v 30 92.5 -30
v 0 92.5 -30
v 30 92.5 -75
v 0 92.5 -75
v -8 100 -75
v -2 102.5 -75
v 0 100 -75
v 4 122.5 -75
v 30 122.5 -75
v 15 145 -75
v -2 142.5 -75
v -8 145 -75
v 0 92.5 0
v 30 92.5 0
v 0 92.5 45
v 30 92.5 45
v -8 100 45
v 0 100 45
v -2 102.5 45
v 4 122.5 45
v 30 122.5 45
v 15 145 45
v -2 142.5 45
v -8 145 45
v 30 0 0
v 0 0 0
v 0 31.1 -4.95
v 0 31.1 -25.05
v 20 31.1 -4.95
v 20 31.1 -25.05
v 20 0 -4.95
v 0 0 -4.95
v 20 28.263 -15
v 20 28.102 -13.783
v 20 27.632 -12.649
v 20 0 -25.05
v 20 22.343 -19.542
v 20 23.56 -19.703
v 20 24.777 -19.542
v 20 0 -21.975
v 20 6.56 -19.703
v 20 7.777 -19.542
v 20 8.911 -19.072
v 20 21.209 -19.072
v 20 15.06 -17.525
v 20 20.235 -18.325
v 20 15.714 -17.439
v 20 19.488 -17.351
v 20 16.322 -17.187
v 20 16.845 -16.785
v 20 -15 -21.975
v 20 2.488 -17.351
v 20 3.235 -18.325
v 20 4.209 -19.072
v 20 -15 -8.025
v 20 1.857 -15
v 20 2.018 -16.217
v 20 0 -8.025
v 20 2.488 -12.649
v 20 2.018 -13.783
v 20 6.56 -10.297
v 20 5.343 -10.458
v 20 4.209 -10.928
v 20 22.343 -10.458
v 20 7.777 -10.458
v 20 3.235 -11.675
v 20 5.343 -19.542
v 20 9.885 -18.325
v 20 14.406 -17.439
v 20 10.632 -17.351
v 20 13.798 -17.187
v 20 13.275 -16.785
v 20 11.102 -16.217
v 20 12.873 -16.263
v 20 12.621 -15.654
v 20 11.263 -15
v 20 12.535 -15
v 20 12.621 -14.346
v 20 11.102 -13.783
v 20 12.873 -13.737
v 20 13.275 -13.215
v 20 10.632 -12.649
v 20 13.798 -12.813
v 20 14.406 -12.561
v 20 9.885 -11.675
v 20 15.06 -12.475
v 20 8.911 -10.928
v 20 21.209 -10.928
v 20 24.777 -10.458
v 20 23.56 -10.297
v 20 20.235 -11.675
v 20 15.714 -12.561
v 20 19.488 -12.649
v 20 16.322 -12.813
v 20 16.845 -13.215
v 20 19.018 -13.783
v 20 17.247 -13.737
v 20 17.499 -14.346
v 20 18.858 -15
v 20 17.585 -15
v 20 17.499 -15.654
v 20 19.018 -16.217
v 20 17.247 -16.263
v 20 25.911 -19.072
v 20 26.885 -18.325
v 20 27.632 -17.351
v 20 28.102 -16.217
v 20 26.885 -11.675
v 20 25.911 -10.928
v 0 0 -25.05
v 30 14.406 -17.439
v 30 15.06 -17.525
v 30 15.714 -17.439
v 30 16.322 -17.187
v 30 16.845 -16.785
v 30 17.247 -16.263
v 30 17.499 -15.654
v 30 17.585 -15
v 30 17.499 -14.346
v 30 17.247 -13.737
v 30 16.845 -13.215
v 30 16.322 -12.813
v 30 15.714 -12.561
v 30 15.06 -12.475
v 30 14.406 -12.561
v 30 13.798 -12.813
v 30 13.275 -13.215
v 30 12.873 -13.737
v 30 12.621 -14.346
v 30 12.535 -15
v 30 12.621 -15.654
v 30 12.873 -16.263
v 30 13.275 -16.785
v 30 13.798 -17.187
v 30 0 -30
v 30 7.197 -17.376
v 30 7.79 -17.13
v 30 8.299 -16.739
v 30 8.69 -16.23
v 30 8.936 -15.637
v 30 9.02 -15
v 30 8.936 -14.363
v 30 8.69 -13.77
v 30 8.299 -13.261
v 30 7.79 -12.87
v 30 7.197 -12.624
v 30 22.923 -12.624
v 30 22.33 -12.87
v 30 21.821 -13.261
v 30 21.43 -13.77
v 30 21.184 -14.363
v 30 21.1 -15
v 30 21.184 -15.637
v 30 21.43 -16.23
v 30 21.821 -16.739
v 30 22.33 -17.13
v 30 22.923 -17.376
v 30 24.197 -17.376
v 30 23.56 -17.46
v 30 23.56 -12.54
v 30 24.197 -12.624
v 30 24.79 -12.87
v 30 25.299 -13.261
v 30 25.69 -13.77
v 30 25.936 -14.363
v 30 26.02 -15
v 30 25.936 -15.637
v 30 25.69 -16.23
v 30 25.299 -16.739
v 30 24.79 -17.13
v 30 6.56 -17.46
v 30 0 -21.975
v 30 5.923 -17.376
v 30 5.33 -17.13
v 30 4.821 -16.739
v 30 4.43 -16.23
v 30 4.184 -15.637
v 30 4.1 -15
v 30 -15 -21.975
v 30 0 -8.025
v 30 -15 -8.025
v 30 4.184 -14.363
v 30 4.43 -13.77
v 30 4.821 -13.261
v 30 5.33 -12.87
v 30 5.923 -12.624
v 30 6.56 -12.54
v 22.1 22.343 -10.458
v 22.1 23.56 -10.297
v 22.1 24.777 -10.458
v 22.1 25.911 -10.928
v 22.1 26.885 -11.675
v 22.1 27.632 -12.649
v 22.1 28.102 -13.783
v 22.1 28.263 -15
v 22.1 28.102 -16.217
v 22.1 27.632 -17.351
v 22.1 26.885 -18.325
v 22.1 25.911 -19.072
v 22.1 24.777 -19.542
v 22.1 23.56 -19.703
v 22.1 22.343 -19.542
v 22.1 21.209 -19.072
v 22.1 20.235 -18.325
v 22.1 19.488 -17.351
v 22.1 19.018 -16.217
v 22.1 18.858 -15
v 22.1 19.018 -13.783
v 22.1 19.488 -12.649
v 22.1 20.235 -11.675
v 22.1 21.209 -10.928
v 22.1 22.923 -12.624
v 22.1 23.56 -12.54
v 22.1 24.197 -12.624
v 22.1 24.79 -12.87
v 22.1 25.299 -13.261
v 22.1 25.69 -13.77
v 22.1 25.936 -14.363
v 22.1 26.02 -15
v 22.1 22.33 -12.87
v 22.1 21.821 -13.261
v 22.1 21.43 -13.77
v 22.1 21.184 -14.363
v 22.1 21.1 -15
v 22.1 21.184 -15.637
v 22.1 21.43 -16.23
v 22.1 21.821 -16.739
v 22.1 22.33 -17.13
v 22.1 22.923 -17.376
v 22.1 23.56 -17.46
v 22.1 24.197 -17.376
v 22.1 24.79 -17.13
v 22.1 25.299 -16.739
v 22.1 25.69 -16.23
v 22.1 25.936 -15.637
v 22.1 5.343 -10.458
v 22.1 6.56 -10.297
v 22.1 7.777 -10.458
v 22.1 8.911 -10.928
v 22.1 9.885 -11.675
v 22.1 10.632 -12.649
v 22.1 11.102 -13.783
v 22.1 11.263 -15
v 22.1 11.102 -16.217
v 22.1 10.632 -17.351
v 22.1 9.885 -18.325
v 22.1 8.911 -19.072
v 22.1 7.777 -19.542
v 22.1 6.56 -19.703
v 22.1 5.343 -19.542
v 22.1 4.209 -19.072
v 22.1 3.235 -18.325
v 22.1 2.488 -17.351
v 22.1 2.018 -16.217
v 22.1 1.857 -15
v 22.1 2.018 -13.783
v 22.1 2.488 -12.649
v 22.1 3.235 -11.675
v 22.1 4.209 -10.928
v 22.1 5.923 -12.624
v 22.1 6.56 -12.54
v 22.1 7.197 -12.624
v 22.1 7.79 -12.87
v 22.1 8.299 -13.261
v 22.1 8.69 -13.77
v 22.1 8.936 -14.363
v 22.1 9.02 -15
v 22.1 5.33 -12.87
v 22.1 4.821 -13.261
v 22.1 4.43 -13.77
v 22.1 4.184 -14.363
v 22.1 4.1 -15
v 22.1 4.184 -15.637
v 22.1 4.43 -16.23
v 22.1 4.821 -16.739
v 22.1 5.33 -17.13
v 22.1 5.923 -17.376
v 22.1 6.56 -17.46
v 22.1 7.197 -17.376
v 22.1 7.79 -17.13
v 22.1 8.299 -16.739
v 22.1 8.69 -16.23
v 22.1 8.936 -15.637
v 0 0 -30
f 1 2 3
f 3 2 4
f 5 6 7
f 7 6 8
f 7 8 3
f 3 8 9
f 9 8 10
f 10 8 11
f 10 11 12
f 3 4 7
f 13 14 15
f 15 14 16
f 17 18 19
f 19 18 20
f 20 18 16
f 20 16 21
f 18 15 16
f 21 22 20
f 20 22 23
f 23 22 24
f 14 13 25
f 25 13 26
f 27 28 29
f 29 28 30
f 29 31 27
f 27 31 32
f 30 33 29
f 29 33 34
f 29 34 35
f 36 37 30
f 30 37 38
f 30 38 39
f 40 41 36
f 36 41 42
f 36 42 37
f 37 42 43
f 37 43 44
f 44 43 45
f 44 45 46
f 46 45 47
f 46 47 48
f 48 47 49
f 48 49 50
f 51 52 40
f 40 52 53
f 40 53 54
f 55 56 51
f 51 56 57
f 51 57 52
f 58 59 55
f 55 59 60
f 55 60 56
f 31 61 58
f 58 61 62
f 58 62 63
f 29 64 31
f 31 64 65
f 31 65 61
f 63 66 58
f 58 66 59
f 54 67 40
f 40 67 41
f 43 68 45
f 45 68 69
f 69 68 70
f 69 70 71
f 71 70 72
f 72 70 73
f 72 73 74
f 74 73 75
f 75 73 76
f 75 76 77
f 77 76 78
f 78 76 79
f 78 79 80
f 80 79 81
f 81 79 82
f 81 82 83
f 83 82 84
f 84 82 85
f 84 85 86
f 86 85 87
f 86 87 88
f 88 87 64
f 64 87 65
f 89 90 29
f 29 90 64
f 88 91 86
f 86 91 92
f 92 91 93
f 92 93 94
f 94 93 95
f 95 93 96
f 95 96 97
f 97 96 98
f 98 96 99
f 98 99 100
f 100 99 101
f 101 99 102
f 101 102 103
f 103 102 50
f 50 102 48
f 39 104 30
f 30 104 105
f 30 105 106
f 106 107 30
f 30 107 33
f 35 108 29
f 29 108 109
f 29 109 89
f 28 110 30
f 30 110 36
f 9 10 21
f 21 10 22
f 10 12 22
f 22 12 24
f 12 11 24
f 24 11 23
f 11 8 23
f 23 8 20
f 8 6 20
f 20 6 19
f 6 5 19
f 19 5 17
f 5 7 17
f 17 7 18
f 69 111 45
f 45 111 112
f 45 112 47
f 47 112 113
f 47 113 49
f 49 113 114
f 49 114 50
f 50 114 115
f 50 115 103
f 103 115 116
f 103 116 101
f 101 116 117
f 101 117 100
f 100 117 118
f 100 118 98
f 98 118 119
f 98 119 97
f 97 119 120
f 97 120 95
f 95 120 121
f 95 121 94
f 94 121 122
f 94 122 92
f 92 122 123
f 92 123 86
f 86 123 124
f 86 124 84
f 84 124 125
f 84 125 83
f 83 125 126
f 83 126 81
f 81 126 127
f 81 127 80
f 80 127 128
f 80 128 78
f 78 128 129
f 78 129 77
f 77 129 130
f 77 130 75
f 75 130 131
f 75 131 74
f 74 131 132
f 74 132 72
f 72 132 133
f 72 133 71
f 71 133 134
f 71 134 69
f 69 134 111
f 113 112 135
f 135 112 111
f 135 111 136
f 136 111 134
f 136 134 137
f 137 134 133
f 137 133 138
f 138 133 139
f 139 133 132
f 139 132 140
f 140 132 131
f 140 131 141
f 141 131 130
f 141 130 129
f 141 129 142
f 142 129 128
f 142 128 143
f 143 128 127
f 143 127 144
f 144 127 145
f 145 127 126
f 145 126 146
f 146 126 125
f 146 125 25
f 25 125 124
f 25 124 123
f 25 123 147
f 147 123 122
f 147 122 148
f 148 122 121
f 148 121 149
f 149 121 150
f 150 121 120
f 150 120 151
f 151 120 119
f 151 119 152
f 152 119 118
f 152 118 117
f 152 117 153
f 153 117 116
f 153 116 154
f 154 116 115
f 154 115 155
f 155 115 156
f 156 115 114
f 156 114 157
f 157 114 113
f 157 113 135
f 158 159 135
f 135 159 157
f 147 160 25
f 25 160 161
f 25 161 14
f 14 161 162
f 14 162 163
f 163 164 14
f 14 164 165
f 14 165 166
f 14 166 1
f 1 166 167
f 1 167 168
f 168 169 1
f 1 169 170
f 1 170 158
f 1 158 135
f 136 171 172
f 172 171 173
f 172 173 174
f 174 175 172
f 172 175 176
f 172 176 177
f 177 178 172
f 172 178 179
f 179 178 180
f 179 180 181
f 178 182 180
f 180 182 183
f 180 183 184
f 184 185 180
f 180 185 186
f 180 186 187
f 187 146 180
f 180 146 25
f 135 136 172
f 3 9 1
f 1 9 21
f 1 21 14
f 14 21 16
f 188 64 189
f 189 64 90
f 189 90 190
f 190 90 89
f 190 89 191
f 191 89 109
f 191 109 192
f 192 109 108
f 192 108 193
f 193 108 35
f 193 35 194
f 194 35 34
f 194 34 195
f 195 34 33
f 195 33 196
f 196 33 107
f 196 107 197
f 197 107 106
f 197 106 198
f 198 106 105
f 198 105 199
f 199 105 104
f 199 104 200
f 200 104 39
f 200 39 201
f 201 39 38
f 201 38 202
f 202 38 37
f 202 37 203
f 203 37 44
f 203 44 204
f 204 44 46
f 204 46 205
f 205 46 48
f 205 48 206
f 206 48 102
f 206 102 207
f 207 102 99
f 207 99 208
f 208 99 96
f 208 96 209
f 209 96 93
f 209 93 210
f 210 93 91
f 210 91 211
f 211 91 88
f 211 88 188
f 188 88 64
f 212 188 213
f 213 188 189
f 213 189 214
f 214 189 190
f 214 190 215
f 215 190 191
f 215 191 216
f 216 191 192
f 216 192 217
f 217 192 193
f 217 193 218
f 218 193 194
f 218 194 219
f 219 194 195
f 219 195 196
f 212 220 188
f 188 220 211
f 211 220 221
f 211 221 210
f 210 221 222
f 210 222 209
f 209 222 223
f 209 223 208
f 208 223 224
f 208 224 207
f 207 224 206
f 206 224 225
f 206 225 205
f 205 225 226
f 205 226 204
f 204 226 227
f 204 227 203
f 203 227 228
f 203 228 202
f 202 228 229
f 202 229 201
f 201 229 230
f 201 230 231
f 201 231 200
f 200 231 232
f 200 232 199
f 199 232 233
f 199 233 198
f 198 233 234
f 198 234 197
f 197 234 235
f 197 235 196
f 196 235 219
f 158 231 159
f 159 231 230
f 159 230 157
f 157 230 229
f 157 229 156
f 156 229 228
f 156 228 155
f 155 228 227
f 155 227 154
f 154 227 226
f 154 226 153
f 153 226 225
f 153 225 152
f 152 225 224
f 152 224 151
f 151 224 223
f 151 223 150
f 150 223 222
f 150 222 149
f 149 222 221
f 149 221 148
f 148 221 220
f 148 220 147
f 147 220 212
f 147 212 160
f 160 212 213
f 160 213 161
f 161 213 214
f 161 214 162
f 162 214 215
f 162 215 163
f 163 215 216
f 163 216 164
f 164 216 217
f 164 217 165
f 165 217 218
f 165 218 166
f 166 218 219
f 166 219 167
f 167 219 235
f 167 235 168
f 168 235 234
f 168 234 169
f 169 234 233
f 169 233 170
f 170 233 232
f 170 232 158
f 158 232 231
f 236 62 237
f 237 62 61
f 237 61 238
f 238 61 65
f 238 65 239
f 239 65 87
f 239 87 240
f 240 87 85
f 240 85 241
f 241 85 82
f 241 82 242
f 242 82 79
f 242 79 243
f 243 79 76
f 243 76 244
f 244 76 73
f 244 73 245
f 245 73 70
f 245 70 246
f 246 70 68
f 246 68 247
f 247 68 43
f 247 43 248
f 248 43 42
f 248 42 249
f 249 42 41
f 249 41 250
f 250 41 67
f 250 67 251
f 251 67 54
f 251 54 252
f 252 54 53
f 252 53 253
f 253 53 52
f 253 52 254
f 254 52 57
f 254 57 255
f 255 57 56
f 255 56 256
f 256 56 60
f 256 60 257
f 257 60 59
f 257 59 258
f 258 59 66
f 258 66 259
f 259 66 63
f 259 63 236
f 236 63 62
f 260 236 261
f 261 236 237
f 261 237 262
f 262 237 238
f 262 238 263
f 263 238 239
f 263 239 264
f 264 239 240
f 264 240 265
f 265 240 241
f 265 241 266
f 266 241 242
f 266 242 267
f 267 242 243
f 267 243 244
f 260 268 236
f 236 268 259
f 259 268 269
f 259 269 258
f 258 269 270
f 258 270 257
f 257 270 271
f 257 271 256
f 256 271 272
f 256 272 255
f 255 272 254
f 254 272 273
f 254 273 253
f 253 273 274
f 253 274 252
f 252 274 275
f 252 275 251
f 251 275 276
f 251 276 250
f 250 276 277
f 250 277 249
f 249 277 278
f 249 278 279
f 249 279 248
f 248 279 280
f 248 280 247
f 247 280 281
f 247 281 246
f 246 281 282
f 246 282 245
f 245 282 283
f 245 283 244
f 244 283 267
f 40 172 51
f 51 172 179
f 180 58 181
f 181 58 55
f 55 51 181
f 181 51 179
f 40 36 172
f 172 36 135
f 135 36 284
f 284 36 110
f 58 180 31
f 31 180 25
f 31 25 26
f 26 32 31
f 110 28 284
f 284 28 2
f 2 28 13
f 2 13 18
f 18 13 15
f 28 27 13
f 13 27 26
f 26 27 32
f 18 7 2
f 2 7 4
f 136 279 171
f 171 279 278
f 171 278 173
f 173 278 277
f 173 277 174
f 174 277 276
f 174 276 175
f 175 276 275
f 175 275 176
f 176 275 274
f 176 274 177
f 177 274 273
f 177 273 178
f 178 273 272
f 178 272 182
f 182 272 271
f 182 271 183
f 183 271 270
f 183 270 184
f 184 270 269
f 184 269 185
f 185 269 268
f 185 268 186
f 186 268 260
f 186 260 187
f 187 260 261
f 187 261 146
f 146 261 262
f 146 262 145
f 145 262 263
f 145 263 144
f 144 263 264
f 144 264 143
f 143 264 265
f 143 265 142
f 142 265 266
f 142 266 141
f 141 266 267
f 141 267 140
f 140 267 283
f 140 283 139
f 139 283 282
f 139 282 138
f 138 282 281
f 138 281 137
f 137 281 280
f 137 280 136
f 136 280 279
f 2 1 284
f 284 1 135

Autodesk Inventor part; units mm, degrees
ref_plane "YZ Plane" through (0, 0, 0) normal (1, 0, 0) x (0, 1, 0)
ref_plane "XZ Plane" through (0, 0, 0) normal (0, 1, 0) x (-1, 0, 0)
sketch "Sketch1" plane through (0, 0, 0) normal (0, 0, 1) x (1, 0, 0)
  line L0 (0, 0) -> (25, 0)
  line L1 (25, 0) -> (25, 40)
  line L2 (25, 40) -> (0, 40)
  line L3 (0, 40) -> (0, 0)
  dimension "d1" = 25
  dimension "d2" = 40
  dimension "d3" = 25
extrude "Extrusion1" add sketch "Sketch1" against normal blind 30
sketch "Sketch2" plane through (25, 0, 0) normal (1, 0, 0) x (0, 0, -1)
  line L0 (0, 0) -> (30, 0) projected
  circle A0 centre (15, 6.56) radius 2.46
extrude "Extrusion2" cut sketch "Sketch2" against normal blind 30
sketch "Sketch3" plane through (0, 0, 0) normal (-1, 0, 0) x (0, 0, 1)
  line L0 (0, 0) -> (-30, 0) projected
  line L1 (-25.05, 0) -> (-4.95, 0)
  line L2 (-4.95, 0) -> (-4.95, 33.12)
  line L3 (-4.95, 33.12) -> (-25.05, 33.12)
  line L4 (-25.05, 33.12) -> (-25.05, 0)
  dimension "d11" = 20.1
extrude "Extrusion3" cut sketch "Sketch3" against normal blind 20
sketch "Sketch4" plane through (0, 0, 0) normal (0, -1, 0) x (1, 0, 0)
  line L0 (20, -4.95) -> (20, -25.05) projected
  line L1 (20, -15) -> (25, -15)
  line L2 (25, 0) -> (25, -30) projected
  line L3 (20, -8.025) -> (25, -8.025)
  line L4 (25, -8.025) -> (25, -21.975)
  line L5 (25, -21.975) -> (20, -21.975)
  line L6 (20, -21.975) -> (20, -8.025)
  line L7 (20, -8.025) -> (25, -21.975) construction
  line L8 (25, -8.025) -> (20, -21.975) construction
  line L9 (25, -12.54) -> (25, -17.46) projected
  point P0 (0, 0)
  point P1 (22.5, -15)
  dimension "d14" = 13.95
extrude "Extrusion4" add sketch "Sketch4" along normal blind 15
sketch "Sketch5" plane through (20, 0, 0) normal (-1, 0, 0) x (0, 0, 1)
  circle A0 centre (-15, 6.56) radius 2.46 projected
  circle A1 centre (-15, 6.56) radius 4.7025
  circle A2 centre (-15, 6.56) radius 2.46 projected
  circle A3 centre (-15, 6.56) radius 2.46
  point P0 (0, 0)
  dimension "d17" = 9.405
extrude "Extrusion5" cut sketch "Sketch5" against normal blind 2.1
sketch "Sketch6" plane through (25, 0, 0) normal (1, 0, 0) x (0, 0, -1)
  circle A0 centre (15, 6.56) radius 4.7025 projected
  line L0 (15, 6.56) -> (15, 23.56)
  circle A1 centre (15, 23.56) radius 2.46
  point P0 (0, 0)
  dimension "d20" = 17
  dimension "d21" = 4.92
extrude "Extrusion6" cut sketch "Sketch6" against normal blind 10 contours A1
sketch "Sketch7" plane through (20, 0, 0) normal (-1, 0, 0) x (0, 0, 1)
  circle A0 centre (-15, 23.56) radius 2.46 projected
  circle A1 centre (-15, 23.56) radius 4.7025
  point P0 (0, 0)
  dimension "d24" = 9.405
extrude "Extrusion7" cut sketch "Sketch7" against normal blind 2.1
sketch "Sketch9" plane through (25, 0, 0) normal (1, 0, 0) x (0, 0, -1)
  circle A0 centre (15, 6.56) radius 2.46 projected
  circle A1 centre (15, 6.56) radius 2.46
  circle A2 centre (15, 23.56) radius 2.46 projected
  circle A3 centre (15, 23.56) radius 2.46
  line L0 (30, 40) -> (30, 0) projected
  line L1 (30, 0) -> (30, 40)
  line L2 (30, 40) -> (0, 40)
  line L3 (0, 40) -> (0, 0)
  line L4 (0, 0) -> (8.025, 0) projected
  line L5 (21.975, 0) -> (21.975, -15)
  line L6 (21.975, -15) -> (8.025, -15)
  line L7 (8.025, -15) -> (8.025, 0)
  line L8 (0, 0) -> (8.025, 0)
  line L9 (21.975, 0) -> (30, 0)
extrude "Extrusion8" add sketch "Sketch9" along normal blind 5
sketch "Sketch10" plane through (0, 40, 0) normal (0, 1, 0) x (1, 0, 0)
  line L0 (0, 30) -> (30, 30) projected
  line L1 (30, 0) -> (0, 0) projected
  line L2 (0, 30) -> (30, 30)
  line L3 (30, 30) -> (30, 0)
  line L4 (30, 0) -> (0, 0)
  line L5 (0, 0) -> (0, 30)
extrude "Extrusion9" add sketch "Sketch10" along normal blind 30
sketch "Sketch12" plane through (30, 0, 0) normal (1, 0, 0) x (0, 0, -1)
  circle A0 centre (15, 6.56) radius 2.46 projected
  line L0 (15, 6.56) -> (15, 15.06)
  circle A1 centre (15, 15.06) radius 2.525
  point P0 (0, 0)
  dimension "d31" = 8.5
  dimension "d33" = 5.05
extrude "Extrusion10" cut sketch "Sketch12" against normal blind 30 contours A1
sketch "Sketch14" plane through (0, 0, 0) normal (0, 0, 1) x (1, 0, 0)
  line L0 (30, 70) -> (0, 70) projected
  line L1 (0, 100) -> (-8, 100)
  line L2 (30, 0) -> (30, 70) projected
  line L3 (30, 118) -> (30, 70)
  line L4 (30, 105) -> (30, 100)
  line L5 (0, 70) -> (30, 70) projected
  line L6 (0, 70) -> (0, 100)
  line L7 (-8, 145) -> (15, 145)
  line L8 (-2, 142.5) -> (-8, 145)
  line L9 (-2, 102.5) -> (-8, 100)
  line L10 (-2, 102.5) -> (4, 122.5)
  line L11 (4, 122.5) -> (-2, 142.5)
  line L12 (15, 145) -> (30, 122.5)
  line L13 (30, 122.5) -> (30, 118)
  point P0 (0, 0)
  dimension "d47" = 30
  dimension "d85" = 45
extrude "Extrusion12" add sketch "Sketch14" against normal blind 30
sketch "Sketch15" plane through (0, 0, -25.05) normal (-1, 0, 0) x (0, 0, 1)
  line L0 (0, 33.12) -> (20.1, 33.12) projected
  line L1 (20.1, 33.12) -> (20.1, 0) projected
  line L2 (0, 33.12) -> (20.1, 33.12)
  line L3 (20.1, 33.12) -> (20.1, 31.1)
  line L4 (20.1, 31.1) -> (0, 31.1)
  line L5 (0, 31.1) -> (0, 33.12)
  point P0 (25.05, 0)
  dimension "d57" = 2.02
extrude "Extrusion13" add sketch "Sketch15" against normal blind 20
sketch "Sketch25" plane through (0, 0, 0) normal (0, 0, 1) x (1, 0, 0)
  line L0 (-8, 100) -> (0, 100) projected
  line L1 (0, 100) -> (-8, 100)
  line L2 (-8, 100) -> (-2, 102.5) projected
  line L3 (-8, 100) -> (-2, 102.5)
  line L4 (-2, 102.5) -> (4, 122.5)
  line L5 (-8, 145) -> (-2, 142.5) projected
  line L6 (4, 122.5) -> (-2, 142.5)
  line L7 (-2, 142.5) -> (-8, 145)
  line L8 (15, 145) -> (-8, 145) projected
  line L9 (-8, 145) -> (15, 145)
  line L10 (15, 145) -> (30, 122.5) projected
  line L11 (15, 145) -> (30, 122.5)
  line L12 (30, 122.5) -> (30, 92.5)
  line L13 (30, 0) -> (30, 122.5) projected
  line L14 (30, 92.5) -> (0, 92.5)
  line L15 (0, 0) -> (0, 100) projected
  line L16 (0, 92.5) -> (0, 100)
  dimension "d88" = 30
extrude "Extrusion14" add sketch "Sketch25" along normal blind 45
ref_plane "Work Plane1" through (0, 0, -15) normal (0, 0, 1) x (1, 0, 0)
mirror "Mirror1" about plane through (0, 0, -15) normal (0, 0, 1) of "Extrusion14"
properties part number "40mm_x_120mm"
